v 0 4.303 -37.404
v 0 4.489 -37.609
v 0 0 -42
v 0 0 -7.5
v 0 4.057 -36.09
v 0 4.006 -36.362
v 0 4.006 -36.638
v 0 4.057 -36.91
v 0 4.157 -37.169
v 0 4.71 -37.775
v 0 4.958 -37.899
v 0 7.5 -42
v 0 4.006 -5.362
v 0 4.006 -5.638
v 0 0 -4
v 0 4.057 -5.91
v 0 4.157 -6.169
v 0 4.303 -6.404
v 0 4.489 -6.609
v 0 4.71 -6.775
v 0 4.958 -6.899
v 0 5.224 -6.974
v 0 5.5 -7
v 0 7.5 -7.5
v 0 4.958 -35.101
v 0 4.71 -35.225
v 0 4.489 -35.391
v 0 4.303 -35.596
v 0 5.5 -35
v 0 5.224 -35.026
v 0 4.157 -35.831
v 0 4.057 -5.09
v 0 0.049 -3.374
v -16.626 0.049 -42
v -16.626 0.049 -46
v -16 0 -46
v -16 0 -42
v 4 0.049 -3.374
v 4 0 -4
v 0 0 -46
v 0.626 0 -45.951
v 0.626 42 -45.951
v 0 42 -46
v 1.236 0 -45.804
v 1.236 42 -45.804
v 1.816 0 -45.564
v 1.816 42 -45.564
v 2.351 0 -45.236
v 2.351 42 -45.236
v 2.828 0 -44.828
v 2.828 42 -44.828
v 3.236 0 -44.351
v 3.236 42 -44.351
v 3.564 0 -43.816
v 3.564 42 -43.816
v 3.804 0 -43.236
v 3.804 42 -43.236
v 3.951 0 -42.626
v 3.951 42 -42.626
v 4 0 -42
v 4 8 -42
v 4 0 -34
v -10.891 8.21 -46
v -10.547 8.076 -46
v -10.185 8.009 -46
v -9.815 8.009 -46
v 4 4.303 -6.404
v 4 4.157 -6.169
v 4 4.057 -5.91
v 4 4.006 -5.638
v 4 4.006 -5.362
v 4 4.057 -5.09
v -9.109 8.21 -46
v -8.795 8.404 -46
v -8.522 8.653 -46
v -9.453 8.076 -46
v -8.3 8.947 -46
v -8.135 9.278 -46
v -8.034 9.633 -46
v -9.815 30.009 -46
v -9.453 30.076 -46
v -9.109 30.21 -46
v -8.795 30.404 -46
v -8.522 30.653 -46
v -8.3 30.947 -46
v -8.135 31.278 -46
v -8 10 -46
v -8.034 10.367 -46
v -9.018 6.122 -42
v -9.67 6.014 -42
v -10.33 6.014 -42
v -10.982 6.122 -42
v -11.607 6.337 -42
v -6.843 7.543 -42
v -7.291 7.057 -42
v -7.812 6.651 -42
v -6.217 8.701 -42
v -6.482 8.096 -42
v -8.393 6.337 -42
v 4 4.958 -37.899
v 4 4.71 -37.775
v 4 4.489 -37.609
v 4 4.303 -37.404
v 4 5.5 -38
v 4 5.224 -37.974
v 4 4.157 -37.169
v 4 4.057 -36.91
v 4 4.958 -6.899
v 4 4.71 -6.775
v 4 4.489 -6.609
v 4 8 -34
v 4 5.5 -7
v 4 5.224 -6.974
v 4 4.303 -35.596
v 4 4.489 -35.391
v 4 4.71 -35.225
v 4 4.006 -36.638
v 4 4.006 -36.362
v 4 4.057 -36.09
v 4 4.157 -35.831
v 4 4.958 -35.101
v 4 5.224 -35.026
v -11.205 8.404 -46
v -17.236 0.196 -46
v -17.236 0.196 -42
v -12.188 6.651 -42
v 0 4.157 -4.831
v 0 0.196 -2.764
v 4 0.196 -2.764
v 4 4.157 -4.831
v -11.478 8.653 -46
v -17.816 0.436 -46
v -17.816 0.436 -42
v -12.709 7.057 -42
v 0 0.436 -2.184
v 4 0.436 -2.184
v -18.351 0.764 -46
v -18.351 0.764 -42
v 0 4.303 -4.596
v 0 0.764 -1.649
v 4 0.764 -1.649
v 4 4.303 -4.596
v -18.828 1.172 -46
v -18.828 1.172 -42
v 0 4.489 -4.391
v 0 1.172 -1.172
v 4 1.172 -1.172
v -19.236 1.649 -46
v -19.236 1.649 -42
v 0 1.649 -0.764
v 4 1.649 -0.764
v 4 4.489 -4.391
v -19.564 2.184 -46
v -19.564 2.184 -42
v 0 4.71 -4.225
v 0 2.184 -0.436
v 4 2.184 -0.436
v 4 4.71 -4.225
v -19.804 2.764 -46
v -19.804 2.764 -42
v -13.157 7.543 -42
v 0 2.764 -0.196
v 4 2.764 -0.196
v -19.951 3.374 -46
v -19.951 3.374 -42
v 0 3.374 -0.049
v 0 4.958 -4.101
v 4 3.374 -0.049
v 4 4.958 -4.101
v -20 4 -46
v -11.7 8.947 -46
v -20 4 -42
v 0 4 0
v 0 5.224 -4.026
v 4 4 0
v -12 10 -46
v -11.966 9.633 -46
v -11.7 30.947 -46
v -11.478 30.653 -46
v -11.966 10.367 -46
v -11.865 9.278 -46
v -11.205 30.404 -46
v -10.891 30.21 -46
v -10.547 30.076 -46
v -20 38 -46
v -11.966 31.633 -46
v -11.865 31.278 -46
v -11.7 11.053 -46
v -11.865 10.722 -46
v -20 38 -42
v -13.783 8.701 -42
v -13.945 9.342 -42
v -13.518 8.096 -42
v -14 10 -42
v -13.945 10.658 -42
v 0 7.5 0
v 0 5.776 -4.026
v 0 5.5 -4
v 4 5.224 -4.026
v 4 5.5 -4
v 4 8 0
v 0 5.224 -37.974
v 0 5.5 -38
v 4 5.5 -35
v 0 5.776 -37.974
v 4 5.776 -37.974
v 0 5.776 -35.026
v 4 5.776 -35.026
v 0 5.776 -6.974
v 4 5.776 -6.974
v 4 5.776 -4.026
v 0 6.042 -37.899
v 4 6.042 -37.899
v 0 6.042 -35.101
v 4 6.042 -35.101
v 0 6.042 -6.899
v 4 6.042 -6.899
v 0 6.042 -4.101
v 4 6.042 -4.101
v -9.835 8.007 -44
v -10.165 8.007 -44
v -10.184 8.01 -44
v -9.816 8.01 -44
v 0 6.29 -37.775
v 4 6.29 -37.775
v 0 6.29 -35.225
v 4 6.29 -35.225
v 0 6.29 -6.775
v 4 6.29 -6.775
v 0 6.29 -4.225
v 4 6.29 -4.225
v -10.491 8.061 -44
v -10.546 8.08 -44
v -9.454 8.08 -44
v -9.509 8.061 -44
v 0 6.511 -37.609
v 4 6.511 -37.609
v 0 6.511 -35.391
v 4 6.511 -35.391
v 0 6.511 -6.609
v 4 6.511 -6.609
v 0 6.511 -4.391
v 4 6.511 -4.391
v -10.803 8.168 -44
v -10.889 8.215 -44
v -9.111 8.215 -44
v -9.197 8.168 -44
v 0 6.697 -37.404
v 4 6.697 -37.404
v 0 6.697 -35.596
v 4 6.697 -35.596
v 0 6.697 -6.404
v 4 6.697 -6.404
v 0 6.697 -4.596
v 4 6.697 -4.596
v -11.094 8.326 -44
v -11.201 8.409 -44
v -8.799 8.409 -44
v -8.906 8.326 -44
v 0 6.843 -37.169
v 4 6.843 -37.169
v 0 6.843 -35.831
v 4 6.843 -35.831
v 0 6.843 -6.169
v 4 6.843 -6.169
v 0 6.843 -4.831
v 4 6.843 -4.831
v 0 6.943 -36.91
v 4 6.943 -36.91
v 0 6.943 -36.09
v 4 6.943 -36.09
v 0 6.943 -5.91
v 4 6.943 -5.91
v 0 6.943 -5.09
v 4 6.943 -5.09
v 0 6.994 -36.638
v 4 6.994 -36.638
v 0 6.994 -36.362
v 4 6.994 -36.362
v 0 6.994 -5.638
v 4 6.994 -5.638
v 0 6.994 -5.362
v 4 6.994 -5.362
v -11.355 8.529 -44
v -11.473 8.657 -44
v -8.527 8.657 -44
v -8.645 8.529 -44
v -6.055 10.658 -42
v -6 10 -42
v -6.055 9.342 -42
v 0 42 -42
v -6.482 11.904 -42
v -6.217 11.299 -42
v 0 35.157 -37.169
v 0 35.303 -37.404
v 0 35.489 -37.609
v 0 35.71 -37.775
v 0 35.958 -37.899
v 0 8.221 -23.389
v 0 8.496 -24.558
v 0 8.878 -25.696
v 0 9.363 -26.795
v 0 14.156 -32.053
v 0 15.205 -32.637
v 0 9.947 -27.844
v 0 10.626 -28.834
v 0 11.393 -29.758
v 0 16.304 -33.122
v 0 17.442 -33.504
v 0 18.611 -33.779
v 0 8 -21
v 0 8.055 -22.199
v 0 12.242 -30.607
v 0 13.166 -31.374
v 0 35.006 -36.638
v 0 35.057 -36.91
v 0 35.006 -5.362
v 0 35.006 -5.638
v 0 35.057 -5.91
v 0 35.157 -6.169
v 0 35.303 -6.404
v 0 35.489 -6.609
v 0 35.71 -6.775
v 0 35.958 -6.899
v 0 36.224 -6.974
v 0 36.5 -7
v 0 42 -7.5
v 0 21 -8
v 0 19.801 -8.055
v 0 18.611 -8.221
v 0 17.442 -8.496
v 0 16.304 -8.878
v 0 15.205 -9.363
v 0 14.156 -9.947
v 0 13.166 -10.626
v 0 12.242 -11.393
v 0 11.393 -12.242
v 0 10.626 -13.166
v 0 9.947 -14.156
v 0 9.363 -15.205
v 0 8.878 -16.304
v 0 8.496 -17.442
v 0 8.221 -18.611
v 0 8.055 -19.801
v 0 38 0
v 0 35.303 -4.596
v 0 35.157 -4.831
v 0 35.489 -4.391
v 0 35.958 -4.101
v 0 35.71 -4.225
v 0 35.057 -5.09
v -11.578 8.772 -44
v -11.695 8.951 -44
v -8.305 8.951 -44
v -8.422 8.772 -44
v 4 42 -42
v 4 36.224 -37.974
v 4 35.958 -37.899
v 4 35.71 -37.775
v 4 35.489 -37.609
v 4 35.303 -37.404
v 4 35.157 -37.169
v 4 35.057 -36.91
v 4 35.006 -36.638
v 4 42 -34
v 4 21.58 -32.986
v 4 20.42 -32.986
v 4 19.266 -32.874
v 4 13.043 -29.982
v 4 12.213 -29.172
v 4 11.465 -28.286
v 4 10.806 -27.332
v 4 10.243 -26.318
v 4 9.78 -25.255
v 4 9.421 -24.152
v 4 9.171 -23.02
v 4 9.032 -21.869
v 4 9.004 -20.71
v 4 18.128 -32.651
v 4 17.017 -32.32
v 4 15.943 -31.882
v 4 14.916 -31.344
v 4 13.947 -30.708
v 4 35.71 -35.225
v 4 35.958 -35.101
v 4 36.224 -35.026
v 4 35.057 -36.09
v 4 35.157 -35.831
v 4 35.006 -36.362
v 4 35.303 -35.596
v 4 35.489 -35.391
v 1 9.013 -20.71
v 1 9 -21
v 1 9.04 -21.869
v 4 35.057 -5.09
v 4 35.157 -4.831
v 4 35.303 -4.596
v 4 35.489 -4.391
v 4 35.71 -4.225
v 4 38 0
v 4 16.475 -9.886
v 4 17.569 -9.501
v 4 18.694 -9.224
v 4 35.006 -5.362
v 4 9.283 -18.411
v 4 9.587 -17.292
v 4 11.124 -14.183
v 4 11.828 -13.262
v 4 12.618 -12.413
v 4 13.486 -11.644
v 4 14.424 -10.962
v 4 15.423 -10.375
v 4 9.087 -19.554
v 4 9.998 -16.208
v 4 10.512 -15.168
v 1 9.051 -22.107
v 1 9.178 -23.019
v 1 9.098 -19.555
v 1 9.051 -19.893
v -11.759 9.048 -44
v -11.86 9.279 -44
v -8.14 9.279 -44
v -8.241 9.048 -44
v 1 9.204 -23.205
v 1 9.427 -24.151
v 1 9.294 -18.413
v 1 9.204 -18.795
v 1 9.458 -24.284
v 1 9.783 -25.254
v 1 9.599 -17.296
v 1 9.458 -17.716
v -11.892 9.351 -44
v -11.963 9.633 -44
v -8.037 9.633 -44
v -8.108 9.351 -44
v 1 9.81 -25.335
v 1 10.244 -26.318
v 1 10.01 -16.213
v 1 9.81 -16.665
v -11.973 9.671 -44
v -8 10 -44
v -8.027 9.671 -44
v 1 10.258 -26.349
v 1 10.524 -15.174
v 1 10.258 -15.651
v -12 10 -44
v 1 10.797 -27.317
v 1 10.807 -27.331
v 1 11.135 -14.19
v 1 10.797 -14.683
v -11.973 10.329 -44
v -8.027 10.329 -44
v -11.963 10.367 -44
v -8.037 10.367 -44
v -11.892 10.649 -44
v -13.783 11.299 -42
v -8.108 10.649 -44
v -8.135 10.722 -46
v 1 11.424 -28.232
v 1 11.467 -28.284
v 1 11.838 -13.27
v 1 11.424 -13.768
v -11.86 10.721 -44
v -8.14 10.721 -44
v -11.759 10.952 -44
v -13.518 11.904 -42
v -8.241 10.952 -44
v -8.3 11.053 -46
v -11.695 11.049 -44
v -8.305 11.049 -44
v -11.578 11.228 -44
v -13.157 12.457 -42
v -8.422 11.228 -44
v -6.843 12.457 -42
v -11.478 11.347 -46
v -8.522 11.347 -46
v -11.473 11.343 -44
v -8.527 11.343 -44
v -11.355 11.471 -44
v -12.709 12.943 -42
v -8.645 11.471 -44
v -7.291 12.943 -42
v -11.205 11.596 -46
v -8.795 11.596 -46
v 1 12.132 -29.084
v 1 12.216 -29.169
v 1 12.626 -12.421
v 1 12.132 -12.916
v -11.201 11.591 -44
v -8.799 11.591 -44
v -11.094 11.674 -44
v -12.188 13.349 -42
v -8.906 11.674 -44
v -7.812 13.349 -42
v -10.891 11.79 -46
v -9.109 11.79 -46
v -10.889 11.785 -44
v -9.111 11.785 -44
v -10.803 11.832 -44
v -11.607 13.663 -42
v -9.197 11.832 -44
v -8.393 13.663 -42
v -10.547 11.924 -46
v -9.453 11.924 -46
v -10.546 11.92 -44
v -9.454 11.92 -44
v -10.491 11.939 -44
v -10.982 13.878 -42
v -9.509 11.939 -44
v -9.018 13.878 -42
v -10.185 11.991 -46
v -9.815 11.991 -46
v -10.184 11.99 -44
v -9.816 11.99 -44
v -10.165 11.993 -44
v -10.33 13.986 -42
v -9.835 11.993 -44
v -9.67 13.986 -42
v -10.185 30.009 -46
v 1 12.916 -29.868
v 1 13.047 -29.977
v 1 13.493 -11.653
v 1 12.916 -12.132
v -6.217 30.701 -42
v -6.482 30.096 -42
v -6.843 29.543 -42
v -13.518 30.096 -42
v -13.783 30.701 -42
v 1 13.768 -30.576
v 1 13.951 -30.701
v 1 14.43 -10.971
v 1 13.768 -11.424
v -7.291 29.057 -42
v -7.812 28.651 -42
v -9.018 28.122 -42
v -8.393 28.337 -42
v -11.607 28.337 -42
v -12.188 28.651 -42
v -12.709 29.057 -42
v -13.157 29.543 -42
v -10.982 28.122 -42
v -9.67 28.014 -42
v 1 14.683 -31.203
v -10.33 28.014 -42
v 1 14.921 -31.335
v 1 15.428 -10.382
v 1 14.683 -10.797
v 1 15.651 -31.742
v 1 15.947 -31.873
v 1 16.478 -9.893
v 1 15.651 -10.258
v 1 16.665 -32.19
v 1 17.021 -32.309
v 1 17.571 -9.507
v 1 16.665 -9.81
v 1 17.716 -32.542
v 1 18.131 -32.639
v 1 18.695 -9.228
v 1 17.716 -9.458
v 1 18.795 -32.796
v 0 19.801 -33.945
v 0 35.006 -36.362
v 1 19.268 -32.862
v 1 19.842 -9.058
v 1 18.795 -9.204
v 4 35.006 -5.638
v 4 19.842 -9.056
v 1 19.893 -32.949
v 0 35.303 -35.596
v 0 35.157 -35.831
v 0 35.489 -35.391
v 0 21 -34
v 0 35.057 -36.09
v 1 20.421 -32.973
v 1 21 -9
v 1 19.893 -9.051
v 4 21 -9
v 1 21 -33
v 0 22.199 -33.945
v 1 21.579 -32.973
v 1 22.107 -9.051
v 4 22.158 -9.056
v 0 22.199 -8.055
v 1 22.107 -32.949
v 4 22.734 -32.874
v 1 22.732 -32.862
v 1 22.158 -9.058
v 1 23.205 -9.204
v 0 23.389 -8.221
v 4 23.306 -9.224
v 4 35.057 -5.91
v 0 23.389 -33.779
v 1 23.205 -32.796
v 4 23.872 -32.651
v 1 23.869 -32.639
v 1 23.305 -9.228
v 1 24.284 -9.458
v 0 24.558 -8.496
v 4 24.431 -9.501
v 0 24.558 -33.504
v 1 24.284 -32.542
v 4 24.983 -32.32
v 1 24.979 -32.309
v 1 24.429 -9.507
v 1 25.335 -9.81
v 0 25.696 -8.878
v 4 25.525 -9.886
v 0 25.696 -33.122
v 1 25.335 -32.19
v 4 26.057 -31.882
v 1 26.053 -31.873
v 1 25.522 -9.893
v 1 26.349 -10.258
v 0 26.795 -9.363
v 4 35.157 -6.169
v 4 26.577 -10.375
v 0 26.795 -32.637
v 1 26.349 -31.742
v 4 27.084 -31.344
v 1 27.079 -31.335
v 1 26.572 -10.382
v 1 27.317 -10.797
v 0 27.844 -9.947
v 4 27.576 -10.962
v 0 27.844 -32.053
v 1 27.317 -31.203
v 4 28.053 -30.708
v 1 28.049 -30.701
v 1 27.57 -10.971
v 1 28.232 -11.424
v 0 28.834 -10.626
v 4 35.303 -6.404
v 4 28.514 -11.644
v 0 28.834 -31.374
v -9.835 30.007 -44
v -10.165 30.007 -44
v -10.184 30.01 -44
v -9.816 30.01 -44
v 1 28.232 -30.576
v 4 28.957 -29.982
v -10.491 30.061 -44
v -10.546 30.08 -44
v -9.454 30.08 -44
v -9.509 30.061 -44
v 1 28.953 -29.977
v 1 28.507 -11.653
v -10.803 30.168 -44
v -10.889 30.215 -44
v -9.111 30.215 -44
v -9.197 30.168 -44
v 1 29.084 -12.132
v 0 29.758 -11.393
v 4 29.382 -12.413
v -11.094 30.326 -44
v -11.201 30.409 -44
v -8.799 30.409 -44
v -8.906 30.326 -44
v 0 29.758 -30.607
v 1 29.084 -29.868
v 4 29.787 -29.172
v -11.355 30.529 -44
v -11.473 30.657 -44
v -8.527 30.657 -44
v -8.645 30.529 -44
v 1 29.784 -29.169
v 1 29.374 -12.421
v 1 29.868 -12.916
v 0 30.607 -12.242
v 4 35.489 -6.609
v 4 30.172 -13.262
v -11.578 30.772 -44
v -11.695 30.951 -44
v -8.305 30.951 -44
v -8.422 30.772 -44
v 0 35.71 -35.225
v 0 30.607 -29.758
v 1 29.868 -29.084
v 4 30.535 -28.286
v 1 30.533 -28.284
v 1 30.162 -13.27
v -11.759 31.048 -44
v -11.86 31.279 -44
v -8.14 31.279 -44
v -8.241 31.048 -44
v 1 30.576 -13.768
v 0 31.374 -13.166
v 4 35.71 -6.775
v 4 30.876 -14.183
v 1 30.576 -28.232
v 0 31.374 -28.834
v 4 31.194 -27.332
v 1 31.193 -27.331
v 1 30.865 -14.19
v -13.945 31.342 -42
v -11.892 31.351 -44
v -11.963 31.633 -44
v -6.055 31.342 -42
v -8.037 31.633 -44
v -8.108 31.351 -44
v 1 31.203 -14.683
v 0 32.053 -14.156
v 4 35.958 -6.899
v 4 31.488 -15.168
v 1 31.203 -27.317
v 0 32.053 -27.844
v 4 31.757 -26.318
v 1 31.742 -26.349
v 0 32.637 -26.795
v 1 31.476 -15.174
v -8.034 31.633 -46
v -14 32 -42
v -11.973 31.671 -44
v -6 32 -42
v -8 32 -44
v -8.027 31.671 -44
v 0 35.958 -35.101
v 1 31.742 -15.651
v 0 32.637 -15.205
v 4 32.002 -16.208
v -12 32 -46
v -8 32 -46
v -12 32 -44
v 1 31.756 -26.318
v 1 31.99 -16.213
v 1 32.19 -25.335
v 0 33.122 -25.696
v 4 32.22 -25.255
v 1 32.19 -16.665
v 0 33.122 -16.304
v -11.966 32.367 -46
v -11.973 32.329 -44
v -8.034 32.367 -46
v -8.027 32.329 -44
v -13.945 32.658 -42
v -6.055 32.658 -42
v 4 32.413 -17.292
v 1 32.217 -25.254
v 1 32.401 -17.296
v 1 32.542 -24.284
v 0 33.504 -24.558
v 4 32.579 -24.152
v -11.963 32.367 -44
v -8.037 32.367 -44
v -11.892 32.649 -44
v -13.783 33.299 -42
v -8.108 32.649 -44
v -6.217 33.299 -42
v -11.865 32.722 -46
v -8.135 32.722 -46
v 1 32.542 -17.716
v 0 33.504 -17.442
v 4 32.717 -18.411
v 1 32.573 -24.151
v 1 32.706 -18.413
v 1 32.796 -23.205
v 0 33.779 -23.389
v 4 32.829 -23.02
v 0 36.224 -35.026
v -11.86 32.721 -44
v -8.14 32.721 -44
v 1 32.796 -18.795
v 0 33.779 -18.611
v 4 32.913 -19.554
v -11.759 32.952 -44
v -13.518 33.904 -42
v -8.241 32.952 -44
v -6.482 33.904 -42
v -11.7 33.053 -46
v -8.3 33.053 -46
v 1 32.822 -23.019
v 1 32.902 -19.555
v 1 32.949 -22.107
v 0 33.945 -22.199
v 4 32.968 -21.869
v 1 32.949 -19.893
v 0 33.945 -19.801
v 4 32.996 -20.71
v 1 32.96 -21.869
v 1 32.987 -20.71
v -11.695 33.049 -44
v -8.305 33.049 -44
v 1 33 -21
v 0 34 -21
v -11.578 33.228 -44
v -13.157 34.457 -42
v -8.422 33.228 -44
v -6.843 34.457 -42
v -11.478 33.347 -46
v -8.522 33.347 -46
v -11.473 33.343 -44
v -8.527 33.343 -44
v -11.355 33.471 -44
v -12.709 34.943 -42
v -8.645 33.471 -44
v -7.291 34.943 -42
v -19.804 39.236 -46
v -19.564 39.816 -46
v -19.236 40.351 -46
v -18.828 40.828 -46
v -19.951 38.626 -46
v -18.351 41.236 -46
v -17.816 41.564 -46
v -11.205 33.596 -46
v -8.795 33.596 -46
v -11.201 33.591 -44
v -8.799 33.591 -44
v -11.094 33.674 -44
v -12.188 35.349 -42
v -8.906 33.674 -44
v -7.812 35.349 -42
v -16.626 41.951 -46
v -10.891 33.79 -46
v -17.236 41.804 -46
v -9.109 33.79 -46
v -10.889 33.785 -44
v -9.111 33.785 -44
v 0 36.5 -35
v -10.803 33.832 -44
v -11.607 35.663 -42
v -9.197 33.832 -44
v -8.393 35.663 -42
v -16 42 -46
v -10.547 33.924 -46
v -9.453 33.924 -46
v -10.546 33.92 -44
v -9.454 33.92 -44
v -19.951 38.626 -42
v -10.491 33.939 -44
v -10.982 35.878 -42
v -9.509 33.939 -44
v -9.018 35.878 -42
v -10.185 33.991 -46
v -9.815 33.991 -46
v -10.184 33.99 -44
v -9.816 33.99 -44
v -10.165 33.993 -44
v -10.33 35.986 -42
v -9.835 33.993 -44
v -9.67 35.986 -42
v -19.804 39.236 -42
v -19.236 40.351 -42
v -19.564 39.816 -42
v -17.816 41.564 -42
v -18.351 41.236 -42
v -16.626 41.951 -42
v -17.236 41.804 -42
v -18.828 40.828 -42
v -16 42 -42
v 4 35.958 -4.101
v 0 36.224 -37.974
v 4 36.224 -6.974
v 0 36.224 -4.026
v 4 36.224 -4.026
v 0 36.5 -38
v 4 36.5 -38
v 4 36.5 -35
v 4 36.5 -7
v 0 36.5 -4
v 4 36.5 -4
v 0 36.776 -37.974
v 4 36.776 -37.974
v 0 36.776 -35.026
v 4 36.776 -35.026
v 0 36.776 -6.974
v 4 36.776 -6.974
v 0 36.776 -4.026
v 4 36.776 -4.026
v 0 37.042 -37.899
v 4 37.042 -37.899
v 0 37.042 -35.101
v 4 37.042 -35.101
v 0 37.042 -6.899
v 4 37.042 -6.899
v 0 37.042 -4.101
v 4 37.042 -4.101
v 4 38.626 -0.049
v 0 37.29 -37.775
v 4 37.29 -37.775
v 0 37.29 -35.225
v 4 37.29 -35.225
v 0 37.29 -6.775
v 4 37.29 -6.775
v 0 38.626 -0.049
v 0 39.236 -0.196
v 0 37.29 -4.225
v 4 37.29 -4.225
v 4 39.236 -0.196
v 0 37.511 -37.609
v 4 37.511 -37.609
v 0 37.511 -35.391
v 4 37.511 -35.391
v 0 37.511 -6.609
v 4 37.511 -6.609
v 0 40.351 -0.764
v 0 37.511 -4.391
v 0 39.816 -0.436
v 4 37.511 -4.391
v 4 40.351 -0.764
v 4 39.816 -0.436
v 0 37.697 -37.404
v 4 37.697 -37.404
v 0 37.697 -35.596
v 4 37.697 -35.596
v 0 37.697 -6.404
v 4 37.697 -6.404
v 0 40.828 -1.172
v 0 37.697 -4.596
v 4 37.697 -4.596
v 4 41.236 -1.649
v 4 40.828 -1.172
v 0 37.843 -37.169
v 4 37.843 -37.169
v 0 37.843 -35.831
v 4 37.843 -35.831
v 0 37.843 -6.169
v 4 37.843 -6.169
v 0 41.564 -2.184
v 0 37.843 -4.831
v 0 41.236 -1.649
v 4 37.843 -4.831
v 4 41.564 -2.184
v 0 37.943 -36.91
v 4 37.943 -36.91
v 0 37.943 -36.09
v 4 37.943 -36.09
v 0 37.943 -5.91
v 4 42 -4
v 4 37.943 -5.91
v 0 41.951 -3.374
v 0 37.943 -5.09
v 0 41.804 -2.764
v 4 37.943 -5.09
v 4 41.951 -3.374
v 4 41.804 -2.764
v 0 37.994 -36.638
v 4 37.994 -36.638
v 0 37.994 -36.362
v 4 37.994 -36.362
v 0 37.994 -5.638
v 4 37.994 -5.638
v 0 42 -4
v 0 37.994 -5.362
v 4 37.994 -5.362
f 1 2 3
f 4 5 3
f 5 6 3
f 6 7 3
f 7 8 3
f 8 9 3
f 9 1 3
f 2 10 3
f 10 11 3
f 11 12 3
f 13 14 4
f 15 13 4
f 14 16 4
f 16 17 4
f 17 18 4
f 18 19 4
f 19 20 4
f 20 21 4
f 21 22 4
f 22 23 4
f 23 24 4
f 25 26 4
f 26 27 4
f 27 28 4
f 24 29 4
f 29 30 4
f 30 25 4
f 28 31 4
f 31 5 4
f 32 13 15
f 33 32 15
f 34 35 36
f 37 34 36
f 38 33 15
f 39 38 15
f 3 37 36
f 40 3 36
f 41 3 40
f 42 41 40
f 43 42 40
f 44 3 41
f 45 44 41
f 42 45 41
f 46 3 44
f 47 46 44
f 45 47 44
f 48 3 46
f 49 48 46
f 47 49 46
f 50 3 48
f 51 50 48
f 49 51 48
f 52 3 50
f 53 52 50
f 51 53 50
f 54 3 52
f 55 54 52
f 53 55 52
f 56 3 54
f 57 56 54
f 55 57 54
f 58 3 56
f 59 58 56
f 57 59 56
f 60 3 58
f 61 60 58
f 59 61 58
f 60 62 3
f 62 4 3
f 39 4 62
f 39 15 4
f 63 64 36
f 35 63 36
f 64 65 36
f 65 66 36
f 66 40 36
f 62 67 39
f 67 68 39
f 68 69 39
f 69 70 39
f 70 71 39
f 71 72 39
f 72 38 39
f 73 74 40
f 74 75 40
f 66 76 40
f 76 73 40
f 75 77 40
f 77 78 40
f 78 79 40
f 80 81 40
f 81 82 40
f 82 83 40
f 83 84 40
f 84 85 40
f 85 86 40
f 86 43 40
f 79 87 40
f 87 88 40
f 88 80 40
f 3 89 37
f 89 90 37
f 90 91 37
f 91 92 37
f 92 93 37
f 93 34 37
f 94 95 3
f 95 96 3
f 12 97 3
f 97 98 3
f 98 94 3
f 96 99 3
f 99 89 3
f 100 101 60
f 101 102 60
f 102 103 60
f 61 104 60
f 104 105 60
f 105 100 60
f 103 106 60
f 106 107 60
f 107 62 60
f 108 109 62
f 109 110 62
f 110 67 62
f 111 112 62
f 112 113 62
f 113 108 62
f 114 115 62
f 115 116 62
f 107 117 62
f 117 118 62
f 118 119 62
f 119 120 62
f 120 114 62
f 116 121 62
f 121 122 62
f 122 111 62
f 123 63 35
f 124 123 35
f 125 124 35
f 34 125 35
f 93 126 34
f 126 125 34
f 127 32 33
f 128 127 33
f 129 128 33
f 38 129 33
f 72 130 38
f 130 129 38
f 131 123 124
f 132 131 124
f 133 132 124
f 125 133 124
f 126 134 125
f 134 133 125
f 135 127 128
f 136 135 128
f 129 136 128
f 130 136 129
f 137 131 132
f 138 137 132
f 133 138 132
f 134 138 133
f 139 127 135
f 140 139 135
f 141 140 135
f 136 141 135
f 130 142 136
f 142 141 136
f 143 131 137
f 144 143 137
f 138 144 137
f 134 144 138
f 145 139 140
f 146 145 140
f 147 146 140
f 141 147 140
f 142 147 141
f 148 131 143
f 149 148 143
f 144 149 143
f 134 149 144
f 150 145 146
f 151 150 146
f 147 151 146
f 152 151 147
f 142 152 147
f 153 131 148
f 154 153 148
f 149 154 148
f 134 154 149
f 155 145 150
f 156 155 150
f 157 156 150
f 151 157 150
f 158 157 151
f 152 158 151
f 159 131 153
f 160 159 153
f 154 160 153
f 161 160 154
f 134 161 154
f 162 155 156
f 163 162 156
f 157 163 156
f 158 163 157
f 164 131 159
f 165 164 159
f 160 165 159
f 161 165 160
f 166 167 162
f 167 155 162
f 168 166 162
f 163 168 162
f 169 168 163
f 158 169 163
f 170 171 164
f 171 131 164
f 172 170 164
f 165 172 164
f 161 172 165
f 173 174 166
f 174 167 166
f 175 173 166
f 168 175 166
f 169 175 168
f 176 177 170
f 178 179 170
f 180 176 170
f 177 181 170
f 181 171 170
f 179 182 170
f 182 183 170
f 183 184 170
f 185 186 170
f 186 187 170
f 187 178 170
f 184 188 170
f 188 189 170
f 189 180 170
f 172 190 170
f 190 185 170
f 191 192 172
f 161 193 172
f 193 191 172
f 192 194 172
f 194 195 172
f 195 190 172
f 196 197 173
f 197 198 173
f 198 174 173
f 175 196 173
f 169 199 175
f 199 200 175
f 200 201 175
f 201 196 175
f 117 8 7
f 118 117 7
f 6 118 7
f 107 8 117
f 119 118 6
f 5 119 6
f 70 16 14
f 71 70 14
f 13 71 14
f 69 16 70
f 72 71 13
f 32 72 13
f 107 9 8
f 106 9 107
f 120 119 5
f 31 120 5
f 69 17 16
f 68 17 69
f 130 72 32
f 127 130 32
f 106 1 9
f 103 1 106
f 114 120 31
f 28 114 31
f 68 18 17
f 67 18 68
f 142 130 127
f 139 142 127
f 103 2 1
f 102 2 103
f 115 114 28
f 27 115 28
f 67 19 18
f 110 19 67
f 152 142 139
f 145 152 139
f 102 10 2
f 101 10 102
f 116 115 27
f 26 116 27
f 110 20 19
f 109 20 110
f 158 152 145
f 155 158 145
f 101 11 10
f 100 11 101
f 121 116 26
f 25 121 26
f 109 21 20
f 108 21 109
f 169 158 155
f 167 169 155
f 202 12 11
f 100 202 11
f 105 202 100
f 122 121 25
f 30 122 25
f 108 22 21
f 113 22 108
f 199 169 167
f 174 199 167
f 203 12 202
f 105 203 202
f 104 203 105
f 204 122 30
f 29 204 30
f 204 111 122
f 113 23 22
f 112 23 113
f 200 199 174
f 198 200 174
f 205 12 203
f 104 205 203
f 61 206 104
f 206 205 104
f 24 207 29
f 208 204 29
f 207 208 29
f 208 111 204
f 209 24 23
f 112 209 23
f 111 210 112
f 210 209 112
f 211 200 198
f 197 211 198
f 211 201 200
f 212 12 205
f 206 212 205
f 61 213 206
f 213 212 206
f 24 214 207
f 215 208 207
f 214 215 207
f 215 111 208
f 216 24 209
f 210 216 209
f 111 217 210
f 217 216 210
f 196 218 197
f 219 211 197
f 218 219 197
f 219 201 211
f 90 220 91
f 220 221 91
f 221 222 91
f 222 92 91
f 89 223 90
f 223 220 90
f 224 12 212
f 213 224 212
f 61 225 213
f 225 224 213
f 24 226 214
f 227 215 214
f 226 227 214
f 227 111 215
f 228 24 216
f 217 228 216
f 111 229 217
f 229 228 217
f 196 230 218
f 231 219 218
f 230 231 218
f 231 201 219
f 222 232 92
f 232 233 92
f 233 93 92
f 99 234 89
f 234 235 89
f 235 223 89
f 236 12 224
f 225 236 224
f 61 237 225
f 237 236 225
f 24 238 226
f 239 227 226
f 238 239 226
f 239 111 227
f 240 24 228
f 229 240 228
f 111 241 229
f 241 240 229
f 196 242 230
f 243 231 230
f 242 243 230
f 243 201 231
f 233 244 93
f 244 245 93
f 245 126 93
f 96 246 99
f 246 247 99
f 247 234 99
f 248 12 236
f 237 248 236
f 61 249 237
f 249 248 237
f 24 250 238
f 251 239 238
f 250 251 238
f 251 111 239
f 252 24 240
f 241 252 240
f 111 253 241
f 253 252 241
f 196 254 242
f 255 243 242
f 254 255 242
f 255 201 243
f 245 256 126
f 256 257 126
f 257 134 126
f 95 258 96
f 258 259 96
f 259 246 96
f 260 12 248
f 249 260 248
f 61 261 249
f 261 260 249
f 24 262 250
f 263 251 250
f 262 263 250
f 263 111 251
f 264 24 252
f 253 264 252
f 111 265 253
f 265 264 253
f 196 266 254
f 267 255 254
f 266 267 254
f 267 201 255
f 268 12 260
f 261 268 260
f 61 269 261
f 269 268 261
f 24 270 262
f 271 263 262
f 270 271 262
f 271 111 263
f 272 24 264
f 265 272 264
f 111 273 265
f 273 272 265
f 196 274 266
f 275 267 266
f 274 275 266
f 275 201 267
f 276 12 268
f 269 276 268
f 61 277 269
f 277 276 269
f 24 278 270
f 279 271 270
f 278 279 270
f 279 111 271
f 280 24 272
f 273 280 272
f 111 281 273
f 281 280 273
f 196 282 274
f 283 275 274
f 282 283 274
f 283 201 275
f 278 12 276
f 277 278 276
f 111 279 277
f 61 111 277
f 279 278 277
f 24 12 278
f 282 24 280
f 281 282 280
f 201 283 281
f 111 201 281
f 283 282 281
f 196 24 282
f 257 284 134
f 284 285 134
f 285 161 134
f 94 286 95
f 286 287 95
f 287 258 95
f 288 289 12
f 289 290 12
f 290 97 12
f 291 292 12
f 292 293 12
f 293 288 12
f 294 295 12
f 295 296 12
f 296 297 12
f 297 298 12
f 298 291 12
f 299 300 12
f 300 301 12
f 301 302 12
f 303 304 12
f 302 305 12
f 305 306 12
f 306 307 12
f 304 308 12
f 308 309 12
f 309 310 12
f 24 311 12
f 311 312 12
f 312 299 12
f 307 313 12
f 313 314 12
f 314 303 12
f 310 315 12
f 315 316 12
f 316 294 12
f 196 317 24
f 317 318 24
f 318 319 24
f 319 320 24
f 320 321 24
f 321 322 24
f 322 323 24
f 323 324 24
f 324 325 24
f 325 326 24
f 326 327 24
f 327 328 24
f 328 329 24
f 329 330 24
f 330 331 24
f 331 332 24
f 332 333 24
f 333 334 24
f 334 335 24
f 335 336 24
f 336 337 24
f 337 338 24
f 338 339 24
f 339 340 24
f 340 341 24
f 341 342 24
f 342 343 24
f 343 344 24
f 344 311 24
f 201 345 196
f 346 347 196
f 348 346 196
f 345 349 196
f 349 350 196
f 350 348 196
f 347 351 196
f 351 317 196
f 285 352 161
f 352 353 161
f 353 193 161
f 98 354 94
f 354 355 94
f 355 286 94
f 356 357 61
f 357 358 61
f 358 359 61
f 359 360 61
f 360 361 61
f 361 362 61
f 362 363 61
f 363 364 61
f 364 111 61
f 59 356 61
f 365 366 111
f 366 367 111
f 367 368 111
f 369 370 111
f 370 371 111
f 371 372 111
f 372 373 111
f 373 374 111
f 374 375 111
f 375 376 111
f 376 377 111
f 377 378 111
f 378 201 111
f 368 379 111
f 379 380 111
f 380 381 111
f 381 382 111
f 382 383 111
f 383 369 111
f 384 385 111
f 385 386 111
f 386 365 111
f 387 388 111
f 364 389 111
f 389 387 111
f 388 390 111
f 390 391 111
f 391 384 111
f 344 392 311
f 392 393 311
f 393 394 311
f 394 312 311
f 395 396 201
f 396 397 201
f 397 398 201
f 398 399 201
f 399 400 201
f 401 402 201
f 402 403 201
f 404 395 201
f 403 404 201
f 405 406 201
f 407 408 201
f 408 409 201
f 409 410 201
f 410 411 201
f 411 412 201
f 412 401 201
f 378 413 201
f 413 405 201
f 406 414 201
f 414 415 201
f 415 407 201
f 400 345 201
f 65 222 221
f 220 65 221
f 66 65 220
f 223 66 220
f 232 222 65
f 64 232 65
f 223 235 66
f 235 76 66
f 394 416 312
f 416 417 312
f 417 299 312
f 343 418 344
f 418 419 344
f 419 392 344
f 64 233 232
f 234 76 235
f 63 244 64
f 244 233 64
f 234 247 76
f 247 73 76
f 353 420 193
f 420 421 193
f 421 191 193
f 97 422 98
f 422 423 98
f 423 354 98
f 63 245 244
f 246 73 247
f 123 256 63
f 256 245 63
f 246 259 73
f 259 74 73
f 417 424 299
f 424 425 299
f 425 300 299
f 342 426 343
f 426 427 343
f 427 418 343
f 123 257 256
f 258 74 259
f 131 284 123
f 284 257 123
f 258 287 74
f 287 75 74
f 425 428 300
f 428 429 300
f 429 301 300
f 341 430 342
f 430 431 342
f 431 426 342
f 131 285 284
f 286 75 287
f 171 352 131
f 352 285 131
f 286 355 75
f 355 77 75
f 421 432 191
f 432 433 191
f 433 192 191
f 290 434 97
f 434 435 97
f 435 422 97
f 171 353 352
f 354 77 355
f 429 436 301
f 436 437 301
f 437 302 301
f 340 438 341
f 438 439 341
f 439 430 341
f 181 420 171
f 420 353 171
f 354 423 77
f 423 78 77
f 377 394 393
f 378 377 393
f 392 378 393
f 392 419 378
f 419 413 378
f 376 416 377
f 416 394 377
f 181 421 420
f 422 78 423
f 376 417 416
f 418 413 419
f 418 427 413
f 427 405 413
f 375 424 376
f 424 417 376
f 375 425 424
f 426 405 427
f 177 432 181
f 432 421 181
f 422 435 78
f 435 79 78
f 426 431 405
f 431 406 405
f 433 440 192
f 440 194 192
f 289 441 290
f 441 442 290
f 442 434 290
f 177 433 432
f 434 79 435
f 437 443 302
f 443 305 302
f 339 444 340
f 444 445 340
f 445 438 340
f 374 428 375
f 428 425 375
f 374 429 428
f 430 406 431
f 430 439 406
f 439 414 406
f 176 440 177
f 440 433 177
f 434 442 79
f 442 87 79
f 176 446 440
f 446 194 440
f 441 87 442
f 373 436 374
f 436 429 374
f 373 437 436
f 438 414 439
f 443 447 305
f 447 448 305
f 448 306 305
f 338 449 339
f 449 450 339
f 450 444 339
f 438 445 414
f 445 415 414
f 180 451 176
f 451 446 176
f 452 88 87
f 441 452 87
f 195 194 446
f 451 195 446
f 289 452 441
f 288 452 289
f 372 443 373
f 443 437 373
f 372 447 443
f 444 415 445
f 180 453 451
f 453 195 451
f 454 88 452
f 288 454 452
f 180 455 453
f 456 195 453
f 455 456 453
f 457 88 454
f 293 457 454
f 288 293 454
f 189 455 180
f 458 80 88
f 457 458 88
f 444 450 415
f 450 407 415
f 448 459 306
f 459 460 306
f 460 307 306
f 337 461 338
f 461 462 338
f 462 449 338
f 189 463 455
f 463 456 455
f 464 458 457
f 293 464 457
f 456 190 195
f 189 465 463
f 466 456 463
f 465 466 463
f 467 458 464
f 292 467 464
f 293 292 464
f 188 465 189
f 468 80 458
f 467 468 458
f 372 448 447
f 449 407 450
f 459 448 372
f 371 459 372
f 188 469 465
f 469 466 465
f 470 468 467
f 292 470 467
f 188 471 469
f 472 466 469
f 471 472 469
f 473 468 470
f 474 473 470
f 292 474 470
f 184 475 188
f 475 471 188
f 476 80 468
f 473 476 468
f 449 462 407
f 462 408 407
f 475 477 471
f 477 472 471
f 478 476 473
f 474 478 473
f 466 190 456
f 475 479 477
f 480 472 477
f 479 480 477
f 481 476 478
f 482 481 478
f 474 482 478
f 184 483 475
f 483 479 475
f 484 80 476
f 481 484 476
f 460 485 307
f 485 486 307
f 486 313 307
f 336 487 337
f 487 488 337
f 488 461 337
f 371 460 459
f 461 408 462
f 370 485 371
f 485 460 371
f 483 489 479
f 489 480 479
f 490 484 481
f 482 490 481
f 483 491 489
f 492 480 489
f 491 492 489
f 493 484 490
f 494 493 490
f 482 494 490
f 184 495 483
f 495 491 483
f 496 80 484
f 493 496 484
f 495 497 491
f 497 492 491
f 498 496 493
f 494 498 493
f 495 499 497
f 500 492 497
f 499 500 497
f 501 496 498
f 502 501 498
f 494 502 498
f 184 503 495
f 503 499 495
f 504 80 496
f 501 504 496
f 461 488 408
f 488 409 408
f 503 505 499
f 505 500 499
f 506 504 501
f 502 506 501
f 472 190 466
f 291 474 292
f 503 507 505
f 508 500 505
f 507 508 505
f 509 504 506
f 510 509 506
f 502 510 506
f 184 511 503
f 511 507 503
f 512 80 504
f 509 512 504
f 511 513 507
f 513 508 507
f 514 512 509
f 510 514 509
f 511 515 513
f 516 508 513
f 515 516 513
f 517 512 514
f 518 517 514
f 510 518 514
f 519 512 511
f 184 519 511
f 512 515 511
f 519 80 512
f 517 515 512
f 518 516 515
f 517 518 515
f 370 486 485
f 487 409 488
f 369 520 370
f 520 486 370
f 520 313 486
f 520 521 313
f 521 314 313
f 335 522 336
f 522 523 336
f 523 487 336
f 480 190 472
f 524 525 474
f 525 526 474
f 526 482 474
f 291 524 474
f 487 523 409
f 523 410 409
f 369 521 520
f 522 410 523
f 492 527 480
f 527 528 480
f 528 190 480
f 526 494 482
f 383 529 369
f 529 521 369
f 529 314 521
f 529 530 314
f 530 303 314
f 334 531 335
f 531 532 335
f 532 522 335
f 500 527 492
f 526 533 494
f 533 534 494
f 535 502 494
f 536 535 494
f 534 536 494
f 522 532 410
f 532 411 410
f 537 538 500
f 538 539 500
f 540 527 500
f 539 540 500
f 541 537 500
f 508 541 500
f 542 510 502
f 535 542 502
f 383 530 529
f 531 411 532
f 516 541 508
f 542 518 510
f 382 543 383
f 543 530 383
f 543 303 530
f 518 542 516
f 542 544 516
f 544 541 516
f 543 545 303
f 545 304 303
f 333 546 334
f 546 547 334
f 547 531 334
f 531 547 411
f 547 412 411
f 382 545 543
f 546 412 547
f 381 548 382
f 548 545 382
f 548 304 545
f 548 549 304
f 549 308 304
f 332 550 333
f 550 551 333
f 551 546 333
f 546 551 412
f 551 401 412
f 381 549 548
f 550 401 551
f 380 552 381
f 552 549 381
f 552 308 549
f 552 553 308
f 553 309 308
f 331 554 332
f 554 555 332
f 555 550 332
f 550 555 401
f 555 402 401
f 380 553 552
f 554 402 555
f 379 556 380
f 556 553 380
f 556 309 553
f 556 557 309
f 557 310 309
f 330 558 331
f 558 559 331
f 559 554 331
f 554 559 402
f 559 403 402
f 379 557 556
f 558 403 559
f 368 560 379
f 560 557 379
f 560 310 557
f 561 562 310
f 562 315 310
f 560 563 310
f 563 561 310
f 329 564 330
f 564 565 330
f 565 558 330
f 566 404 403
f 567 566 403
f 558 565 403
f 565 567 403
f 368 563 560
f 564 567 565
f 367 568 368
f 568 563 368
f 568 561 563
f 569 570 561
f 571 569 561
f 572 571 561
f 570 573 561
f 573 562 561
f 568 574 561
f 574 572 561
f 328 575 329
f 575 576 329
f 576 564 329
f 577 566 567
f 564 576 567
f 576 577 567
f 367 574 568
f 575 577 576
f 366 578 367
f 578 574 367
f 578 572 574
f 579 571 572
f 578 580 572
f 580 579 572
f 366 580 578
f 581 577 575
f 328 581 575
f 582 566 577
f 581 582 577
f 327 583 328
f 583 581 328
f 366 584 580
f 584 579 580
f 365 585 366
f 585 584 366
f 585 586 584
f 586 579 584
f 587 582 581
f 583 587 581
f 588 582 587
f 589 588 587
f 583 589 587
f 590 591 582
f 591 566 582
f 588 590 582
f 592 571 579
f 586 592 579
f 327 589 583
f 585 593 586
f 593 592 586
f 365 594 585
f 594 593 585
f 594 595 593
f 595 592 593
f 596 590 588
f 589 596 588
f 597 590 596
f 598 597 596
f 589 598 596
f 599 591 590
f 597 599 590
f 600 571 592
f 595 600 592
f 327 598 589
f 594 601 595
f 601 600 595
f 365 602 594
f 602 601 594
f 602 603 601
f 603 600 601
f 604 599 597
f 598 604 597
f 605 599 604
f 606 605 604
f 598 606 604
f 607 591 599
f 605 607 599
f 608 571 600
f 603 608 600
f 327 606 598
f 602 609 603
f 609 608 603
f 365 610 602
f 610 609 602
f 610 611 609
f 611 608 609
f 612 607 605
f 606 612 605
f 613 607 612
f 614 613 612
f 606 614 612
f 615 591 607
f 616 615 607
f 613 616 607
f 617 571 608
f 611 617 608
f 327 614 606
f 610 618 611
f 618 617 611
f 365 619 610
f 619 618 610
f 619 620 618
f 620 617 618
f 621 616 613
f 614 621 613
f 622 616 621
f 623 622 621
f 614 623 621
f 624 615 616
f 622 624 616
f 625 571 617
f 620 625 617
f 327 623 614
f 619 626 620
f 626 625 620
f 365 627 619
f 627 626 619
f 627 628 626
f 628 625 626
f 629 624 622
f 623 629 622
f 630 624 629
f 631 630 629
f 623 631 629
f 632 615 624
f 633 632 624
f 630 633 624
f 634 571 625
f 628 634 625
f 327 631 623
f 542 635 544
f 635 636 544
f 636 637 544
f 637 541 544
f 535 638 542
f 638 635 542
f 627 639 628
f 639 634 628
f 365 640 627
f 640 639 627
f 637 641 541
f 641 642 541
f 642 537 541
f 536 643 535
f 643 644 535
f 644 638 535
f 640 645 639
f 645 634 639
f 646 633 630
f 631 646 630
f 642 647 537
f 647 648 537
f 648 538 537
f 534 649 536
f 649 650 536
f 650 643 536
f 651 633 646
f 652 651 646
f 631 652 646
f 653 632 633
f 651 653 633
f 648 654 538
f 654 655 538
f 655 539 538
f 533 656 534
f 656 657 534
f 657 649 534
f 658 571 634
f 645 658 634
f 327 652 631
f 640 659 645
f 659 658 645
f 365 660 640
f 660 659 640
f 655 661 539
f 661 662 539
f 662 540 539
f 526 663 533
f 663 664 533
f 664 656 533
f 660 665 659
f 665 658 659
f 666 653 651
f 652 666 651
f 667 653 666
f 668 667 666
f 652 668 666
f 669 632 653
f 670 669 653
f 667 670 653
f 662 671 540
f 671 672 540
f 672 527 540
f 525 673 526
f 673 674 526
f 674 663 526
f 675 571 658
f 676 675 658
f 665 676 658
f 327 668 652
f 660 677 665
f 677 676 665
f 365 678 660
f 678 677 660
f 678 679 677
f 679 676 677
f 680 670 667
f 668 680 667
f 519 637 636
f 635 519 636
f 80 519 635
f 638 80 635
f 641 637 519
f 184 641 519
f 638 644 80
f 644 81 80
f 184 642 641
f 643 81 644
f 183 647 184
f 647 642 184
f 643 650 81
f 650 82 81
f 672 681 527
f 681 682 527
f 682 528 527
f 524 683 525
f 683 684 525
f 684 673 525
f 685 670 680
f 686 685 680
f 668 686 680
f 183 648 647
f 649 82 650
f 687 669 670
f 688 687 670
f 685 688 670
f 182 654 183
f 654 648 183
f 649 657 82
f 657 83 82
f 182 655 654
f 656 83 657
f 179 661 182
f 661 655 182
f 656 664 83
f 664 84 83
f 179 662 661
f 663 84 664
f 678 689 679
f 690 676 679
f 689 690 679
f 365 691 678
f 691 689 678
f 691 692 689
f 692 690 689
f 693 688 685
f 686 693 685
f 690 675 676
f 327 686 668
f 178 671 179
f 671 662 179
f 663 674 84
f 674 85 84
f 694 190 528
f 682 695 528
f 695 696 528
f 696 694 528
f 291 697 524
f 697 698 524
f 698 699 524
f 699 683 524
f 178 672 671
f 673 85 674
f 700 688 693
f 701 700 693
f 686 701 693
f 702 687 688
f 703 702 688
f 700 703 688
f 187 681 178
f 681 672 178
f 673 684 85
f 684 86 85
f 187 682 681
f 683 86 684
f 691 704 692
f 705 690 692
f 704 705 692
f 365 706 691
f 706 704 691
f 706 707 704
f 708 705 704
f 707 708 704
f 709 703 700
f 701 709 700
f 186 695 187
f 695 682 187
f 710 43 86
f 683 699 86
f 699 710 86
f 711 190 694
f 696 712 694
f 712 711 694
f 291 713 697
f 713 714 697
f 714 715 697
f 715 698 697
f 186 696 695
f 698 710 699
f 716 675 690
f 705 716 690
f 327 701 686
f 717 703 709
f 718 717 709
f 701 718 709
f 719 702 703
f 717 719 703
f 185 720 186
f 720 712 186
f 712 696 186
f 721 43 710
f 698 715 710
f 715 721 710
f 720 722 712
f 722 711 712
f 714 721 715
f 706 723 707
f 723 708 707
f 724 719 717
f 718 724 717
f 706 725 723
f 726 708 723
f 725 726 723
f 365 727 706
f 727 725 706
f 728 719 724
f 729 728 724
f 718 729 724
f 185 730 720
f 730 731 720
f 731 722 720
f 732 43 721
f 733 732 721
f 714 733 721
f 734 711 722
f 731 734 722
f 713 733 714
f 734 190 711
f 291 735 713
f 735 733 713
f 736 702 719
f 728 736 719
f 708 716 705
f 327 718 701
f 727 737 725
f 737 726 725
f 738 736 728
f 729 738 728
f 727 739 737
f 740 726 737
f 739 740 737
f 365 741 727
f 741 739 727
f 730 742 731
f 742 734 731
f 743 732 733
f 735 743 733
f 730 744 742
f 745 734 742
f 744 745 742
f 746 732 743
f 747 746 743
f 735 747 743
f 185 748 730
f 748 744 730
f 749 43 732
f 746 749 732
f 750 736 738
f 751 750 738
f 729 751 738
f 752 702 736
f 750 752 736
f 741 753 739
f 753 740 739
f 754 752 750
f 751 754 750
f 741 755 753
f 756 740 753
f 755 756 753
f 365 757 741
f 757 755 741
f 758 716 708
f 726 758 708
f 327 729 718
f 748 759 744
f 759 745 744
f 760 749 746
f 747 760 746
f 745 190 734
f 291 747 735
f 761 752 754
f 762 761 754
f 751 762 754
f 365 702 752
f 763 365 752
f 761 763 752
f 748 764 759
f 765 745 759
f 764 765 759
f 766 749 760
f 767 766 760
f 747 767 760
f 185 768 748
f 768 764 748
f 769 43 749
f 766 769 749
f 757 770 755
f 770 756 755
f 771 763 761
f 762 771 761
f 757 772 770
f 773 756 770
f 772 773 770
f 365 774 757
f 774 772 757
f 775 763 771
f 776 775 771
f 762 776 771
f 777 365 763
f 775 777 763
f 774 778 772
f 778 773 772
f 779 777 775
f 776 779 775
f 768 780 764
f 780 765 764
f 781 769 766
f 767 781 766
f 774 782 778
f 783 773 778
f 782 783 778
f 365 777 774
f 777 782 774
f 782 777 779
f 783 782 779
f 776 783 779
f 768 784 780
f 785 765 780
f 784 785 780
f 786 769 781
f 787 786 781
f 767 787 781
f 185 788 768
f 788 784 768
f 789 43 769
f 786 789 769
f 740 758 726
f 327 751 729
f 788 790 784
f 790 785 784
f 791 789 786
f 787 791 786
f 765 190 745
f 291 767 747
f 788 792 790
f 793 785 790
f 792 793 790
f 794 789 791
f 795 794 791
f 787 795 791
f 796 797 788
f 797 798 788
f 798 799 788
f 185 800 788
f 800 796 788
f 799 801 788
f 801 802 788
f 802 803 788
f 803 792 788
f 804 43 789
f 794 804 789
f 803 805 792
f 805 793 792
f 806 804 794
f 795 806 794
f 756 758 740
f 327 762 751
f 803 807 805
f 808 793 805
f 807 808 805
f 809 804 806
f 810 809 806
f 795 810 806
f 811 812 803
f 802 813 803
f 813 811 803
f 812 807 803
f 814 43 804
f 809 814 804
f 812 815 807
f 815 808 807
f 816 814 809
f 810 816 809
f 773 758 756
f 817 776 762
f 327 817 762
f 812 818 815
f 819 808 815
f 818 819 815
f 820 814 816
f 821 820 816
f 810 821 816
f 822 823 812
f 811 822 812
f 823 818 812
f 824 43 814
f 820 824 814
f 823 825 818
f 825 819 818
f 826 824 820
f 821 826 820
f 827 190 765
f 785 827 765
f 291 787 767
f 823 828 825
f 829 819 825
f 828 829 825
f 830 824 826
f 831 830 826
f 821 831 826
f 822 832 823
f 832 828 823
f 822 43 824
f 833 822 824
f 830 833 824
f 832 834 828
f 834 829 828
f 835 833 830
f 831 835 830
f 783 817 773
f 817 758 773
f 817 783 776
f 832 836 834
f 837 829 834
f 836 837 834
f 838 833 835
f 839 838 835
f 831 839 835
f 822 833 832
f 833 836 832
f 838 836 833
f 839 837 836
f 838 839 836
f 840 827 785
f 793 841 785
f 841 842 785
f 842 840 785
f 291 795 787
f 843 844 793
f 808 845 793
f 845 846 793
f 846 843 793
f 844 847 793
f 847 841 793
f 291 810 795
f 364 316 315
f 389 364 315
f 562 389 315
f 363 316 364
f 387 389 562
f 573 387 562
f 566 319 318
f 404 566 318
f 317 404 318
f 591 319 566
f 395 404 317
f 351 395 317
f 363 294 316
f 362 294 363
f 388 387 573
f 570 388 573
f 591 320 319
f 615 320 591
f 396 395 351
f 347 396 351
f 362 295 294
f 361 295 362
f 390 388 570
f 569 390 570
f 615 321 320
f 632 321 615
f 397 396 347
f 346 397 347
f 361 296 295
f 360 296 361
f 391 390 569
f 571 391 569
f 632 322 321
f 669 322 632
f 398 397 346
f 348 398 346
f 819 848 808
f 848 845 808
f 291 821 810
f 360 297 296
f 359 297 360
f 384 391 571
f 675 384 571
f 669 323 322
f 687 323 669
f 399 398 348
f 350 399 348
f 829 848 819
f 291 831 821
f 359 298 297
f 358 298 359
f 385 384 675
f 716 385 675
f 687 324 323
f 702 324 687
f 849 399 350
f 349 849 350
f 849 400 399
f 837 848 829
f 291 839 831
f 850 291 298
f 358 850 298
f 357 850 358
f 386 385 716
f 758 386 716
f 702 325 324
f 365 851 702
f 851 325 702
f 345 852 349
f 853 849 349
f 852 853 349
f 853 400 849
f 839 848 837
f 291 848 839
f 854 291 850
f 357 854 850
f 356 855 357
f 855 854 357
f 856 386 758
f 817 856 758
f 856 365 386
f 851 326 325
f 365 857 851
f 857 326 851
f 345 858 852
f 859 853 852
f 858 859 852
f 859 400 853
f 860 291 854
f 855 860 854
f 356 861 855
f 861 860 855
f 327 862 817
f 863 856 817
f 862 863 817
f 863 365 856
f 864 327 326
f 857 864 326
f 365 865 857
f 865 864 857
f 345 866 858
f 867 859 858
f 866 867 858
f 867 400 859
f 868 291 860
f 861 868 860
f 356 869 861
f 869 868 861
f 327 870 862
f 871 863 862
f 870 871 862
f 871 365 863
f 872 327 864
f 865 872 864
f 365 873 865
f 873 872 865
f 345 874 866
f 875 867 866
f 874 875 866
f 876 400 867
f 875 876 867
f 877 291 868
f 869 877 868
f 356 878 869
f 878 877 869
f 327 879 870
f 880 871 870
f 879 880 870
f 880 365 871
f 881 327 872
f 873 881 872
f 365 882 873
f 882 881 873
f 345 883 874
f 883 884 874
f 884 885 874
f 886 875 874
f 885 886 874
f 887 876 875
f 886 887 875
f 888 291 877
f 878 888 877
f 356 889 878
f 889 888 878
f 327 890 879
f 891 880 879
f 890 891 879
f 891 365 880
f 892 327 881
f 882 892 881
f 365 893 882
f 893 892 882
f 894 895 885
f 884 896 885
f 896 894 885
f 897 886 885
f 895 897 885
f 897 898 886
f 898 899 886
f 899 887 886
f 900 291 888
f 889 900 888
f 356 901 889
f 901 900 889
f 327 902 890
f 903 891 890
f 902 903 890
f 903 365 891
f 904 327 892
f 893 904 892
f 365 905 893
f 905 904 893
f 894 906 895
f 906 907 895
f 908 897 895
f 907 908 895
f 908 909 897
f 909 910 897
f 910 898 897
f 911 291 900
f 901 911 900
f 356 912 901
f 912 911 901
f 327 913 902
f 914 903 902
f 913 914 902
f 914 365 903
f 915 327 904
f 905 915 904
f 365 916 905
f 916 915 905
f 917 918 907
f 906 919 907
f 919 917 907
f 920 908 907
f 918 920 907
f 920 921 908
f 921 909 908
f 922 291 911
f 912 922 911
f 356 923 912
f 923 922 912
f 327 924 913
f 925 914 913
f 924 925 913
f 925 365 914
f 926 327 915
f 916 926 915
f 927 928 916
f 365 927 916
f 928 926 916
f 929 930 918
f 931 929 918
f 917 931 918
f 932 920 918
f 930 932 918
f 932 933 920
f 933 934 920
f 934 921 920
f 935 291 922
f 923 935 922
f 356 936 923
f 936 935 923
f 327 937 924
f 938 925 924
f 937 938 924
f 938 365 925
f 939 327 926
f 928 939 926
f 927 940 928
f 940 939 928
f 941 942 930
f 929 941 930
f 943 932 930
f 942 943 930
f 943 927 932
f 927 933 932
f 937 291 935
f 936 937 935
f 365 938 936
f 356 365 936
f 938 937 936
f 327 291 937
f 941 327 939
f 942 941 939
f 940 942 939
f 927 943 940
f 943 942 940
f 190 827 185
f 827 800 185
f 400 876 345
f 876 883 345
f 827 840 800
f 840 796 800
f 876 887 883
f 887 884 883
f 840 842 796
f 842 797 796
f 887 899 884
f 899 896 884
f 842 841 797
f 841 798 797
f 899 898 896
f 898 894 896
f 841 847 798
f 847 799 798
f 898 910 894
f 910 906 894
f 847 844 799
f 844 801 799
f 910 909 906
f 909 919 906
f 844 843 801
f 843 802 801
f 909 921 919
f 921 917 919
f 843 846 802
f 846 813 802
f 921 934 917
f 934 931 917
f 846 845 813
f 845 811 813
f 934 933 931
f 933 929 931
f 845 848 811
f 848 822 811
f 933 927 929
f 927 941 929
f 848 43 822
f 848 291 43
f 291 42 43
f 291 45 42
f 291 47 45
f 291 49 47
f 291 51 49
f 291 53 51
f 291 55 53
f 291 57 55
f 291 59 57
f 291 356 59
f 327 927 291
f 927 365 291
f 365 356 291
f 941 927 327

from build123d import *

# Parameters (mm, degrees)
BOSS_EXTRUDE1_DEPTH = 42
SKETCH2_R           = 12
SKETCH2_R_2         = 1.5
CUT_EXTRUDE1_DEPTH  = 5
SKETCH3_R           = 2
CUT_EXTRUDE2_DEPTH  = 5
CHAMFER1_SIZE       = 2
CHAMFER2_SIZE       = 1
FILLET1_R           = 4


with BuildPart() as part:
    # Sketch1 → Boss-Extrude1 (new body)
    with BuildSketch(Plane(origin=(0, 0, 0), x_dir=(1, 0, 0), z_dir=(0, 1, 0))):
        Polygon((0, 0), (0, 42), (-20, 42), (-20, 46), (4, 46), (4, 0), align=None)
    extrude(amount=BOSS_EXTRUDE1_DEPTH)

    # Sketch2 → Cut-Extrude1 (cut, through all)
    with BuildSketch(Plane.ZY):
        with Locations((-21, 21)):
            Circle(SKETCH2_R)
        with Locations((-36.5, 36.5)):
            Circle(SKETCH2_R_2)
        with Locations((-5.5, 36.5)):
            Circle(SKETCH2_R_2)
        with Locations((-5.5, 5.5)):
            Circle(SKETCH2_R_2)
        with Locations((-36.5, 5.5)):
            Circle(SKETCH2_R_2)
    extrude(amount=-CUT_EXTRUDE1_DEPTH, mode=Mode.SUBTRACT)

    # Sketch3 → Cut-Extrude2 (cut, through all)
    with BuildSketch(Plane.XY.offset(-42)):
        with Locations((-10, 32)):
            Circle(SKETCH3_R)
        with Locations((-10, 10)):
            Circle(SKETCH3_R)
    extrude(amount=-CUT_EXTRUDE2_DEPTH, mode=Mode.SUBTRACT)

    # Chamfer1
    chamfer1_edges = [part.edges().sort_by_distance(p)[0] for p in [
        (-12, 32, -42),
        (-12, 10, -42),
    ]]
    chamfer(chamfer1_edges, length=CHAMFER1_SIZE)

    # Chamfer2
    chamfer2_edges = [part.edges().sort_by_distance(p)[0] for p in [
        (0, 21, -33),
    ]]
    chamfer(chamfer2_edges, length=CHAMFER2_SIZE)

    # Fillet1
    fillet1_edges = [part.edges().sort_by_distance(p)[0] for p in [
        (4, 21, -46),
        (-20, 42, -44),
        (2, 42, 0),
        (-20, 0, -44),
        (2, 0, 0),
    ]]
    fillet(fillet1_edges, radius=FILLET1_R)


solid = part.part
